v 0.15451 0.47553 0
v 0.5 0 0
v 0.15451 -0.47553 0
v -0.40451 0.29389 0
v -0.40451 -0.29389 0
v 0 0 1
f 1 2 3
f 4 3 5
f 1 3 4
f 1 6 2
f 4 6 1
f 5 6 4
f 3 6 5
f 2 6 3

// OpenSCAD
// Pentagon Pyramid for Basic Shapes
// by Slashee the Cow

linear_extrude(1, scale = 0)
circle(d=1, $fn=5);
